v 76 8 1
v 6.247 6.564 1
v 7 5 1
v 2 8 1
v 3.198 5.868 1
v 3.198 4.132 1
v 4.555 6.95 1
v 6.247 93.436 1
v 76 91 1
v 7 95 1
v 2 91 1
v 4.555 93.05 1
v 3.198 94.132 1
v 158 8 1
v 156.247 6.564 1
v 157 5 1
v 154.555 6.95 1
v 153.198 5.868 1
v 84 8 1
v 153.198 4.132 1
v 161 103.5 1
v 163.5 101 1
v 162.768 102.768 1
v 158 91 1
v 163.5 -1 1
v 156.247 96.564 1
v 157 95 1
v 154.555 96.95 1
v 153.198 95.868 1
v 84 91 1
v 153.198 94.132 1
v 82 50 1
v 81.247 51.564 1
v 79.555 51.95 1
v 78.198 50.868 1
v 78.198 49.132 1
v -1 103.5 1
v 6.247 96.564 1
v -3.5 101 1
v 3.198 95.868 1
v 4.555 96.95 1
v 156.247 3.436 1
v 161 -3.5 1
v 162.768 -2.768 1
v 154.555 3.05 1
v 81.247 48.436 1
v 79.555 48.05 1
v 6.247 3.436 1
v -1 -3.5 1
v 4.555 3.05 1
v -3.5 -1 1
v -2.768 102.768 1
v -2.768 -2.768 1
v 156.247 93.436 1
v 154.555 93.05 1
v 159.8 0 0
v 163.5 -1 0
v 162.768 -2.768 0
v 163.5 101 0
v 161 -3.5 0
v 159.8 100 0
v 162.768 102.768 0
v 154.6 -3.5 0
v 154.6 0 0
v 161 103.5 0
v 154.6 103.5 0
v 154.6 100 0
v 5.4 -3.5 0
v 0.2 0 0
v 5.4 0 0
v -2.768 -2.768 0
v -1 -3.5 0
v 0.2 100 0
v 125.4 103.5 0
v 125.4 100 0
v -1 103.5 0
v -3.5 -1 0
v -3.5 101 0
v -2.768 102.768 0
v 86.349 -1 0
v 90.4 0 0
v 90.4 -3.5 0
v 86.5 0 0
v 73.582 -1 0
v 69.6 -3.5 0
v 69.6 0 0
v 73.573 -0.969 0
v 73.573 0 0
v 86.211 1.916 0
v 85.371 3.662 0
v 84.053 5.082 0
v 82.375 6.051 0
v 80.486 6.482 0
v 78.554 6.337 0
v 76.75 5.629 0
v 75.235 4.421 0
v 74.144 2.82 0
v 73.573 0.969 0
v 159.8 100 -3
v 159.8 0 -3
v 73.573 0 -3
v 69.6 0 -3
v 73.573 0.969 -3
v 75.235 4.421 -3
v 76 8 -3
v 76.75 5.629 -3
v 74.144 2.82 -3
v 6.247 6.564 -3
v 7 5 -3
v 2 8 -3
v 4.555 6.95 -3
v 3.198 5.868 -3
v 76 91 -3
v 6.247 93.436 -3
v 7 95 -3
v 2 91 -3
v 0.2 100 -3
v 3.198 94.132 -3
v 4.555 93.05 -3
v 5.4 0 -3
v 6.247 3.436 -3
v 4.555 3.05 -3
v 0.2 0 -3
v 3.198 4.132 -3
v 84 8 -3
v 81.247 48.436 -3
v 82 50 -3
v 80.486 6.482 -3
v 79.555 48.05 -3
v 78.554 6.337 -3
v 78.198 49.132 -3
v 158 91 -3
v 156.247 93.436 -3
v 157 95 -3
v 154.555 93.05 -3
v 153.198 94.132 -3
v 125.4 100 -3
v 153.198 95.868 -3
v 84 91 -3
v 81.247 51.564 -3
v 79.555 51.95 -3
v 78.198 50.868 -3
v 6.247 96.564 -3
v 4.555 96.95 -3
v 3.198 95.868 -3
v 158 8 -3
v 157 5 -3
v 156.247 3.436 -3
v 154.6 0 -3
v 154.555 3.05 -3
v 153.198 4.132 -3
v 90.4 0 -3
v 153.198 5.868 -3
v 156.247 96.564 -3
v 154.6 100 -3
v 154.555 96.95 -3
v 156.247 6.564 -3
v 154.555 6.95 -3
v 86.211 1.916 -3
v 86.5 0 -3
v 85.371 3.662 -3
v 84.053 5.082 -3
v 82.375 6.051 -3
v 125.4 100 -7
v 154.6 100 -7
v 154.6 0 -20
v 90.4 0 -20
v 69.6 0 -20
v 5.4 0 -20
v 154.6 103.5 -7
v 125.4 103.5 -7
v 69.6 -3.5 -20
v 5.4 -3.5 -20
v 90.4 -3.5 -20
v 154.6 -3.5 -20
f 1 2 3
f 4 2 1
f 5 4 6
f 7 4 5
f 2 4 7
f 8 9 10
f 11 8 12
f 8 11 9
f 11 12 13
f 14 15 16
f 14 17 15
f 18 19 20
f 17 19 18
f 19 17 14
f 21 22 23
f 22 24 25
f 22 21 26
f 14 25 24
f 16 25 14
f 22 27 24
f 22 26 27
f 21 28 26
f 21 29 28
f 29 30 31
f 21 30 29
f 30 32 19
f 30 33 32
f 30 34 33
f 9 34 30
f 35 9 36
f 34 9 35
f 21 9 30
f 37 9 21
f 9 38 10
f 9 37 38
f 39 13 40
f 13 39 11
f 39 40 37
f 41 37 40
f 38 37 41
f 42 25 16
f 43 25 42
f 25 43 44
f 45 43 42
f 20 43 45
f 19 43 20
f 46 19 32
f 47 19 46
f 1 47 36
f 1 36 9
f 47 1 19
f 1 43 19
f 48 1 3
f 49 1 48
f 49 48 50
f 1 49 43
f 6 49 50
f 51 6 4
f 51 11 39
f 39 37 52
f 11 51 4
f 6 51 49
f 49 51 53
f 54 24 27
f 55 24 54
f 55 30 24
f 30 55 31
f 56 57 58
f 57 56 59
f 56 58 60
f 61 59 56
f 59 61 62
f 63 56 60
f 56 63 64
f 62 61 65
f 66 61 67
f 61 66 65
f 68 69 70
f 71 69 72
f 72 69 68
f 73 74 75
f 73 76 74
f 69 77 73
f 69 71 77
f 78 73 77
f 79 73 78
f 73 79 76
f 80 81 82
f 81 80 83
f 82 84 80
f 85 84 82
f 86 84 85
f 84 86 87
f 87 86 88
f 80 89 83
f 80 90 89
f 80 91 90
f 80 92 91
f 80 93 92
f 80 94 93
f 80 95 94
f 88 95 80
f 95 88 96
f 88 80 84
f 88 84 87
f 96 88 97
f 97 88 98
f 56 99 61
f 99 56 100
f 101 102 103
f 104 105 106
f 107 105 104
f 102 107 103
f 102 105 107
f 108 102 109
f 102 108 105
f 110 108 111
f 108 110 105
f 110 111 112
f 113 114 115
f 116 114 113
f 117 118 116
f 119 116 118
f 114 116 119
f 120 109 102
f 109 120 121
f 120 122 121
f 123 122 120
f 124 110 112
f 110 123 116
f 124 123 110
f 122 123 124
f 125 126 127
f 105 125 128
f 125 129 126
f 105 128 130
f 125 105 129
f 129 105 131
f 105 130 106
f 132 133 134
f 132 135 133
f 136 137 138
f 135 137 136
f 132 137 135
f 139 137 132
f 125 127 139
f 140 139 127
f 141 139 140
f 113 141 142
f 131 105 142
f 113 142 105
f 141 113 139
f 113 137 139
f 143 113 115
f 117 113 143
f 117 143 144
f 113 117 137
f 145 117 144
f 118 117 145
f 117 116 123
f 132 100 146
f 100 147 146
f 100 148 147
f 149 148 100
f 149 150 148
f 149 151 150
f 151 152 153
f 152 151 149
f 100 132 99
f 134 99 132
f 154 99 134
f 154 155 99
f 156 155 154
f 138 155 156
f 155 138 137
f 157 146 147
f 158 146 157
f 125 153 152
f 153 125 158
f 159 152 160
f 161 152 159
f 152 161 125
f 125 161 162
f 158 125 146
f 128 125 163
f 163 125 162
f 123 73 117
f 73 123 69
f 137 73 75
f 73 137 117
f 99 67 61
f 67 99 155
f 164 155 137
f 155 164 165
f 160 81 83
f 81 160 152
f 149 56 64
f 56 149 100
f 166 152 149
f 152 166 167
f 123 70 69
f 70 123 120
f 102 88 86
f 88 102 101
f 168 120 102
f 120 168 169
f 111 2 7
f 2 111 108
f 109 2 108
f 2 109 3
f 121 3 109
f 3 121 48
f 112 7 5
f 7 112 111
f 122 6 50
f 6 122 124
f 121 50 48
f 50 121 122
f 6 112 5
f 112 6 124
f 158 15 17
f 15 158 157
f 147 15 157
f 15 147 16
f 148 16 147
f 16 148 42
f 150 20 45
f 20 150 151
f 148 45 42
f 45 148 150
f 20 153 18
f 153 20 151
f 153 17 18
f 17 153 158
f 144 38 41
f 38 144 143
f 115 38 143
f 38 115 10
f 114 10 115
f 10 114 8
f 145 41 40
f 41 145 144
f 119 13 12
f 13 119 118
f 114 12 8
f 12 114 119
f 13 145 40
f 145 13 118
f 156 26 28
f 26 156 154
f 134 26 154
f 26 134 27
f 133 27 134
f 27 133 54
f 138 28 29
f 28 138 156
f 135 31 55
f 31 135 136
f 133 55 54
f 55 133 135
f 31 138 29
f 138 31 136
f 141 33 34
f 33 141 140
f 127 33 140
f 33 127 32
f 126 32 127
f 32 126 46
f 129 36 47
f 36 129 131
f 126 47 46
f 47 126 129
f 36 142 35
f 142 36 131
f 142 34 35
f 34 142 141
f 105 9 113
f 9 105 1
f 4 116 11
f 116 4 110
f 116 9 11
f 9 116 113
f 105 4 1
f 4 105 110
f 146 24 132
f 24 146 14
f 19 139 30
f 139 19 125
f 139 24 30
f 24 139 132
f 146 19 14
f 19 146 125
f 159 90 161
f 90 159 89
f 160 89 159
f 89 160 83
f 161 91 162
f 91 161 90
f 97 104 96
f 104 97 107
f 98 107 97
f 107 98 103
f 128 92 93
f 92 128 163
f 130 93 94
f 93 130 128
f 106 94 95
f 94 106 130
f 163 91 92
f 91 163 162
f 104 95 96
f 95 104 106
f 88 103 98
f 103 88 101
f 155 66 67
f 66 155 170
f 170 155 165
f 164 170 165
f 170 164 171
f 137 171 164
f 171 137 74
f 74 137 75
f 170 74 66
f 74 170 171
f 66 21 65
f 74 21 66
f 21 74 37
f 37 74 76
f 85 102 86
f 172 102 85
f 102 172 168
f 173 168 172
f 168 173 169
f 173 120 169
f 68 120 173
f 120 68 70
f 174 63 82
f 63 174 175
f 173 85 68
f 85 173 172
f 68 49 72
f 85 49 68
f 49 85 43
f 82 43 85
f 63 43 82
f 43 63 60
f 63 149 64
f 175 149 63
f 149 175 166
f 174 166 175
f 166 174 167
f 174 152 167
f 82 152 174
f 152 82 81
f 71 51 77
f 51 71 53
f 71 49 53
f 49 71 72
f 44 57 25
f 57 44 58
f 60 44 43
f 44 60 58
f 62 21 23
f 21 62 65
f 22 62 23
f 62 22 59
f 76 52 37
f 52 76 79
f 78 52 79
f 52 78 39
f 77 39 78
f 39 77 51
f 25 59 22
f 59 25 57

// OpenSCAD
difference() {
    union() {
        // Base plate
        translate([-1,-1,0])
            cube(size = [162,102,1], center = false);
        // Place in
        translate([0.2,0,-3])
            cube(size = [159.6,100,3], center = false);
    }
    // PCB mount
    translate([5,5,-4])
        cylinder( d = 4.00, h = 40);
    translate([155,5,-4])
        cylinder( d = 4.00, h = 40);
    translate([5,95,-4])
        cylinder( d = 4.00, h = 40);
    translate([155,95,-4])
        cylinder( d = 4.00, h = 40);
    // For case
    translate([80,50,-4])
        cylinder( d = 4.00, h = 20);
    
    //display
    translate([2,8,-3])
        cube(size = [74,83,4], center = false);
    translate([84,8,-3])
        cube(size = [74,83,4], center = false);
    translate([80,0,-3])
        cylinder( d = 13.00, h = 3);
    // many holes
    //for (i = [1 : 15]){
    //    for (j = [1 : 9]){
    //        translate([10*i,10*j,-2])
    //            cylinder( d = 8.00, h = 3);
    //    }
    //}
    

}
//close back
    translate([125.4,100,-7])
        cube(size = [29.2,3.5,7], center = false);
//close left rp
    translate([5.4,-3.5,-20])
        cube(size = [64.2,3.5,20], center = false);
//close right rp
    translate([90.4,-3.5,-20])
        cube(size = [64.2,3.5,20], center = false);

// Rounded corners
// front left
    translate([-1,-1,0])
        cylinder( d = 5.00, h = 1);

// front right
    translate([161,-1,0])
        cylinder( d = 5.00, h = 1);

// back right
    translate([161,101,0])
        cylinder( d = 5.00, h = 1);

// back left
     translate([-1,101,0])
        cylinder( d = 5.00, h = 1);


// Left
translate([-3.5,-1,0])
    cube(size = [2.5,102,1], center = false);
// Right
translate([161,-1,0])
    cube(size = [2.5,102,1], center = false);
// Front
translate([-1,-3.5,0])
    cube(size = [162,2.5,1], center = false);
// Back
translate([-1,101,0])
    cube(size = [162,2.5,1], center = false);
